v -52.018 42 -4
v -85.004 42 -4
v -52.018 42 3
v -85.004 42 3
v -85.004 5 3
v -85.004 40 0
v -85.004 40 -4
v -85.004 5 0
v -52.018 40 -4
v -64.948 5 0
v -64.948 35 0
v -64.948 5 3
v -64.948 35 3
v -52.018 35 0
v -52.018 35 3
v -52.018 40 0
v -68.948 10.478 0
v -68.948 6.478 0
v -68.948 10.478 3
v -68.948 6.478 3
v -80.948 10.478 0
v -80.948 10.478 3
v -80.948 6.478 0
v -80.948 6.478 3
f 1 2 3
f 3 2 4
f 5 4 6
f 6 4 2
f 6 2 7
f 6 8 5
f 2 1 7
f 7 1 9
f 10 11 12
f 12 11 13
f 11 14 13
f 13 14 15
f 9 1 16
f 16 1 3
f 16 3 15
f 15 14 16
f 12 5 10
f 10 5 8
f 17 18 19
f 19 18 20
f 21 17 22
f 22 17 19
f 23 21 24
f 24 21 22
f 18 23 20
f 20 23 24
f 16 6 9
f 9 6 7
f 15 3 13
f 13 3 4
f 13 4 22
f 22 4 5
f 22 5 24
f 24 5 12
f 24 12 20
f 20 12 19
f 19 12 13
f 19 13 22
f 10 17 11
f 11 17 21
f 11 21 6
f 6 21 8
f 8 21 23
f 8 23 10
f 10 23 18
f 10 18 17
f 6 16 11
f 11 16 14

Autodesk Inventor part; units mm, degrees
ref_plane "YZ Plane" through (0, 0, 0) normal (1, 0, 0) x (0, 1, 0)
ref_plane "XZ Plane" through (0, 0, 0) normal (0, 1, 0) x (-1, 0, 0)
ref_plane "XY Plane" through (0, 0, 0) normal (0, 0, 1) x (1, 0, 0)
sketch "Sketch1" plane through (0, 0, 0) normal (0, 0, 1) x (1, 0, 0)
  line L0 (-3.1754, 5) -> (-49.0181, 5) projected
  line L1 (-3.1754, 40) -> (-3.1754, 5) projected
  line L2 (-97.8609, 40) -> (-3.1754, 40) projected
  line L3 (-97.8609, 5) -> (-97.8609, 40) projected
  line L4 (-52.0181, 5) -> (-97.8609, 5) projected
  line L5 (-52.0181, 5) -> (-52.0181, 37) projected
  line L6 (-52.0181, 37) -> (-49.0181, 37) projected
  line L7 (-49.0181, 37) -> (-49.0181, 5) projected
  line L8 (-52.0181, 5) -> (-85.0042, 5)
  line L9 (-85.0042, 5) -> (-85.0042, 50)
  line L10 (-85.0042, 50) -> (-52.0181, 50)
  line L11 (-52.0181, 50) -> (-52.0181, 5)
  line L12 (-52.0181, 10.5351) -> (-74.9481, 10.5351) construction
  point P0 (0, 0)
  point P1 (-66.8598, 10.5351)
  dimension "d1" = 45
  dimension "d7" = 45.8427
  dimension "d8" = 22.93
extrude "Extrusion1" add sketch "Sketch1" along normal blind 3 contours L11 L5 L4 L9 L2 | L2 L9 L10 L11
sketch "Sketch2" plane through (0, 0, 0) normal (0, 0, -1) x (-1, 0, 0)
  line L0 (95.2628, 40) -> (95.2628, 0) projected
  line L1 (5.7735, 40) -> (95.2628, 40) projected
  line L2 (5.7735, 0) -> (5.7735, 40) projected
  line L3 (95.2628, 0) -> (5.7735, 0) projected
  line L4 (52.0181, 5) -> (52.0181, 50) projected
  line L5 (85.0042, 5) -> (52.0181, 5) projected
  line L6 (85.0042, 50) -> (85.0042, 5) projected
  line L7 (52.0181, 50) -> (85.0042, 50) projected
  line L8 (52.0181, 50) -> (85.0042, 50)
  line L9 (85.0042, 50) -> (85.0042, 40)
  line L10 (85.0042, 40) -> (52.0181, 40)
  line L11 (52.0181, 40) -> (52.0181, 50)
  point P0 (0, 0)
extrude "Extrusion2" add sketch "Sketch2" along normal blind 4 contours L1 L4 L7 L6
sketch "Sketch3" plane through (0, 0, 3) normal (0, 0, 1) x (1, 0, 0)
  line L0 (-80.9481, 10.4777) -> (-68.9481, 10.4777)
  line L1 (-68.9481, 10.4777) -> (-68.9481, 6.4777)
  line L2 (-68.9481, 6.4777) -> (-80.9481, 6.4777)
  line L3 (-80.9481, 6.4777) -> (-80.9481, 10.4777)
  line L4 (-80.9481, 10.4777) -> (-68.9481, 6.4777) construction
  line L5 (-68.9481, 10.4777) -> (-80.9481, 6.4777) construction
  circle A0 centre (-74.9481, 8.4777) radius 2 construction
  circle A1 centre (-71.4481, 8.4777) radius 2 construction
  circle A2 centre (-71.7614, 8.4777) radius 2 construction
  line L6 (-52.0181, 5) -> (-52.0181, 50) projected
  point P0 (0, 0)
  point P1 (-71.4481, 8.4777)
  dimension "d9" = 12
  dimension "d10" = 4
  dimension "d11" = 4
  dimension "d12" = 3.5
  dimension "d13" = 3.5
  dimension "d23" = 22.93
extrude "Extrusion3" cut sketch "Sketch3" against normal blind 4
sketch "Sketch5" plane through (0, 0, 3) normal (0, 0, 1) x (1, 0, 0)
  line L0 (-80.9481, 6.4777) -> (-80.9481, 10.4777) projected
  line L1 (-80.9481, 10.4777) -> (-68.9481, 10.4777) projected
  line L2 (-68.9481, 10.4777) -> (-68.9481, 6.4777) projected
  line L3 (-68.9481, 6.4777) -> (-80.9481, 6.4777) projected
  line L4 (-52.0181, 5) -> (-52.0181, 50) projected
  line L5 (-52.0181, 50) -> (-85.0042, 50) projected
  line L6 (-85.0042, 50) -> (-85.0042, 5) projected
  line L7 (-85.0042, 5) -> (-52.0181, 5) projected
  line L8 (-64.9481, 5) -> (-64.9481, 35)
  line L9 (-64.9481, 35) -> (-52.0181, 35)
  point P0 (0, 0)
  dimension "d39" = 30
  dimension "d40" = 4
extrude "Extrusion5" cut sketch "Sketch5" against normal blind 4 contours L7 L8 L9 L4
chamfer "Chamfer1" [suppressed]
sketch "Sketch6" plane through (0, 0, 3) normal (0, 0, 1) x (1, 0, 0)
  line L0 (-64.9481, 35) -> (-52.0181, 35) projected
  line L1 (-52.0181, 35) -> (-52.0181, 50) projected
  line L2 (-52.0181, 50) -> (-85.0042, 50) projected
  line L3 (-85.0042, 50) -> (-85.0042, 5) projected
  line L4 (-85.0042, 5) -> (-64.9481, 5) projected
  line L5 (-64.9481, 5) -> (-64.9481, 35) projected
  line L6 (-80.9481, 6.4777) -> (-80.9481, 10.4777) projected
  line L7 (-80.9481, 10.4777) -> (-68.9481, 10.4777) projected
  line L8 (-68.9481, 10.4777) -> (-68.9481, 6.4777) projected
  line L9 (-68.9481, 6.4777) -> (-80.9481, 6.4777) projected
  line L10 (-52.0181, 35) -> (-52.0181, 50) projected
  line L11 (-85.0042, 50) -> (-52.0181, 50)
  line L12 (-52.0181, 50) -> (-52.0181, 42)
  line L13 (-52.0181, 42) -> (-85.0042, 42)
  line L14 (-85.0042, 42) -> (-85.0042, 50)
  point P0 (0, 0)
  dimension "d44" = 8
extrude "Extrusion6" cut sketch "Sketch6" against normal blind 12.5 contours L13 L3 L2 L1
sketch "Sketch4" plane through (0, 0, 3) normal (0, 0, 1) x (1, 0, 0)
  line L0 (-80.9481, 6.4777) -> (-80.9481, 10.4777) projected
  line L1 (-80.9481, 10.4777) -> (-68.9481, 10.4777) projected
  line L2 (-68.9481, 10.4777) -> (-68.9481, 6.4777) projected
  line L3 (-68.9481, 6.4777) -> (-80.9481, 6.4777) projected
  line L4 (-52.0181, 5) -> (-52.0181, 50) projected
  line L5 (-52.0181, 50) -> (-85.0042, 50) projected
  line L6 (-85.0042, 50) -> (-85.0042, 5) projected
  line L7 (-85.0042, 5) -> (-52.0181, 5) projected
  line L8 (-81.0042, 47) -> (-56.0181, 47)
  line L9 (-56.0181, 47) -> (-56.0181, 42)
  line L10 (-56.0181, 42) -> (-81.0042, 42)
  line L11 (-81.0042, 42) -> (-81.0042, 47)
  line L12 (-81.0042, 38) -> (-56.0181, 38)
  line L13 (-56.0181, 38) -> (-56.0181, 33)
  line L14 (-56.0181, 33) -> (-81.0042, 33)
  line L15 (-81.0042, 33) -> (-81.0042, 38)
  line L16 (-81.0042, 29) -> (-56.0181, 29)
  line L17 (-56.0181, 29) -> (-56.0181, 24)
  line L18 (-56.0181, 24) -> (-81.0042, 24)
  line L19 (-81.0042, 24) -> (-81.0042, 29)
  line L20 (-81.0042, 20) -> (-56.0181, 20)
  line L21 (-56.0181, 20) -> (-56.0181, 15)
  line L22 (-56.0181, 15) -> (-81.0042, 15)
  line L23 (-81.0042, 15) -> (-81.0042, 20)
  point P0 (0, 0)
  dimension "d24" = 4
  dimension "d25" = 4
  dimension "d26" = 3
  dimension "d27" = 5
  dimension "d30" = 9
equation "\"d13\" = d12"
equation "\"d25\" = d24"
properties part number "Aligner Helper v3"
